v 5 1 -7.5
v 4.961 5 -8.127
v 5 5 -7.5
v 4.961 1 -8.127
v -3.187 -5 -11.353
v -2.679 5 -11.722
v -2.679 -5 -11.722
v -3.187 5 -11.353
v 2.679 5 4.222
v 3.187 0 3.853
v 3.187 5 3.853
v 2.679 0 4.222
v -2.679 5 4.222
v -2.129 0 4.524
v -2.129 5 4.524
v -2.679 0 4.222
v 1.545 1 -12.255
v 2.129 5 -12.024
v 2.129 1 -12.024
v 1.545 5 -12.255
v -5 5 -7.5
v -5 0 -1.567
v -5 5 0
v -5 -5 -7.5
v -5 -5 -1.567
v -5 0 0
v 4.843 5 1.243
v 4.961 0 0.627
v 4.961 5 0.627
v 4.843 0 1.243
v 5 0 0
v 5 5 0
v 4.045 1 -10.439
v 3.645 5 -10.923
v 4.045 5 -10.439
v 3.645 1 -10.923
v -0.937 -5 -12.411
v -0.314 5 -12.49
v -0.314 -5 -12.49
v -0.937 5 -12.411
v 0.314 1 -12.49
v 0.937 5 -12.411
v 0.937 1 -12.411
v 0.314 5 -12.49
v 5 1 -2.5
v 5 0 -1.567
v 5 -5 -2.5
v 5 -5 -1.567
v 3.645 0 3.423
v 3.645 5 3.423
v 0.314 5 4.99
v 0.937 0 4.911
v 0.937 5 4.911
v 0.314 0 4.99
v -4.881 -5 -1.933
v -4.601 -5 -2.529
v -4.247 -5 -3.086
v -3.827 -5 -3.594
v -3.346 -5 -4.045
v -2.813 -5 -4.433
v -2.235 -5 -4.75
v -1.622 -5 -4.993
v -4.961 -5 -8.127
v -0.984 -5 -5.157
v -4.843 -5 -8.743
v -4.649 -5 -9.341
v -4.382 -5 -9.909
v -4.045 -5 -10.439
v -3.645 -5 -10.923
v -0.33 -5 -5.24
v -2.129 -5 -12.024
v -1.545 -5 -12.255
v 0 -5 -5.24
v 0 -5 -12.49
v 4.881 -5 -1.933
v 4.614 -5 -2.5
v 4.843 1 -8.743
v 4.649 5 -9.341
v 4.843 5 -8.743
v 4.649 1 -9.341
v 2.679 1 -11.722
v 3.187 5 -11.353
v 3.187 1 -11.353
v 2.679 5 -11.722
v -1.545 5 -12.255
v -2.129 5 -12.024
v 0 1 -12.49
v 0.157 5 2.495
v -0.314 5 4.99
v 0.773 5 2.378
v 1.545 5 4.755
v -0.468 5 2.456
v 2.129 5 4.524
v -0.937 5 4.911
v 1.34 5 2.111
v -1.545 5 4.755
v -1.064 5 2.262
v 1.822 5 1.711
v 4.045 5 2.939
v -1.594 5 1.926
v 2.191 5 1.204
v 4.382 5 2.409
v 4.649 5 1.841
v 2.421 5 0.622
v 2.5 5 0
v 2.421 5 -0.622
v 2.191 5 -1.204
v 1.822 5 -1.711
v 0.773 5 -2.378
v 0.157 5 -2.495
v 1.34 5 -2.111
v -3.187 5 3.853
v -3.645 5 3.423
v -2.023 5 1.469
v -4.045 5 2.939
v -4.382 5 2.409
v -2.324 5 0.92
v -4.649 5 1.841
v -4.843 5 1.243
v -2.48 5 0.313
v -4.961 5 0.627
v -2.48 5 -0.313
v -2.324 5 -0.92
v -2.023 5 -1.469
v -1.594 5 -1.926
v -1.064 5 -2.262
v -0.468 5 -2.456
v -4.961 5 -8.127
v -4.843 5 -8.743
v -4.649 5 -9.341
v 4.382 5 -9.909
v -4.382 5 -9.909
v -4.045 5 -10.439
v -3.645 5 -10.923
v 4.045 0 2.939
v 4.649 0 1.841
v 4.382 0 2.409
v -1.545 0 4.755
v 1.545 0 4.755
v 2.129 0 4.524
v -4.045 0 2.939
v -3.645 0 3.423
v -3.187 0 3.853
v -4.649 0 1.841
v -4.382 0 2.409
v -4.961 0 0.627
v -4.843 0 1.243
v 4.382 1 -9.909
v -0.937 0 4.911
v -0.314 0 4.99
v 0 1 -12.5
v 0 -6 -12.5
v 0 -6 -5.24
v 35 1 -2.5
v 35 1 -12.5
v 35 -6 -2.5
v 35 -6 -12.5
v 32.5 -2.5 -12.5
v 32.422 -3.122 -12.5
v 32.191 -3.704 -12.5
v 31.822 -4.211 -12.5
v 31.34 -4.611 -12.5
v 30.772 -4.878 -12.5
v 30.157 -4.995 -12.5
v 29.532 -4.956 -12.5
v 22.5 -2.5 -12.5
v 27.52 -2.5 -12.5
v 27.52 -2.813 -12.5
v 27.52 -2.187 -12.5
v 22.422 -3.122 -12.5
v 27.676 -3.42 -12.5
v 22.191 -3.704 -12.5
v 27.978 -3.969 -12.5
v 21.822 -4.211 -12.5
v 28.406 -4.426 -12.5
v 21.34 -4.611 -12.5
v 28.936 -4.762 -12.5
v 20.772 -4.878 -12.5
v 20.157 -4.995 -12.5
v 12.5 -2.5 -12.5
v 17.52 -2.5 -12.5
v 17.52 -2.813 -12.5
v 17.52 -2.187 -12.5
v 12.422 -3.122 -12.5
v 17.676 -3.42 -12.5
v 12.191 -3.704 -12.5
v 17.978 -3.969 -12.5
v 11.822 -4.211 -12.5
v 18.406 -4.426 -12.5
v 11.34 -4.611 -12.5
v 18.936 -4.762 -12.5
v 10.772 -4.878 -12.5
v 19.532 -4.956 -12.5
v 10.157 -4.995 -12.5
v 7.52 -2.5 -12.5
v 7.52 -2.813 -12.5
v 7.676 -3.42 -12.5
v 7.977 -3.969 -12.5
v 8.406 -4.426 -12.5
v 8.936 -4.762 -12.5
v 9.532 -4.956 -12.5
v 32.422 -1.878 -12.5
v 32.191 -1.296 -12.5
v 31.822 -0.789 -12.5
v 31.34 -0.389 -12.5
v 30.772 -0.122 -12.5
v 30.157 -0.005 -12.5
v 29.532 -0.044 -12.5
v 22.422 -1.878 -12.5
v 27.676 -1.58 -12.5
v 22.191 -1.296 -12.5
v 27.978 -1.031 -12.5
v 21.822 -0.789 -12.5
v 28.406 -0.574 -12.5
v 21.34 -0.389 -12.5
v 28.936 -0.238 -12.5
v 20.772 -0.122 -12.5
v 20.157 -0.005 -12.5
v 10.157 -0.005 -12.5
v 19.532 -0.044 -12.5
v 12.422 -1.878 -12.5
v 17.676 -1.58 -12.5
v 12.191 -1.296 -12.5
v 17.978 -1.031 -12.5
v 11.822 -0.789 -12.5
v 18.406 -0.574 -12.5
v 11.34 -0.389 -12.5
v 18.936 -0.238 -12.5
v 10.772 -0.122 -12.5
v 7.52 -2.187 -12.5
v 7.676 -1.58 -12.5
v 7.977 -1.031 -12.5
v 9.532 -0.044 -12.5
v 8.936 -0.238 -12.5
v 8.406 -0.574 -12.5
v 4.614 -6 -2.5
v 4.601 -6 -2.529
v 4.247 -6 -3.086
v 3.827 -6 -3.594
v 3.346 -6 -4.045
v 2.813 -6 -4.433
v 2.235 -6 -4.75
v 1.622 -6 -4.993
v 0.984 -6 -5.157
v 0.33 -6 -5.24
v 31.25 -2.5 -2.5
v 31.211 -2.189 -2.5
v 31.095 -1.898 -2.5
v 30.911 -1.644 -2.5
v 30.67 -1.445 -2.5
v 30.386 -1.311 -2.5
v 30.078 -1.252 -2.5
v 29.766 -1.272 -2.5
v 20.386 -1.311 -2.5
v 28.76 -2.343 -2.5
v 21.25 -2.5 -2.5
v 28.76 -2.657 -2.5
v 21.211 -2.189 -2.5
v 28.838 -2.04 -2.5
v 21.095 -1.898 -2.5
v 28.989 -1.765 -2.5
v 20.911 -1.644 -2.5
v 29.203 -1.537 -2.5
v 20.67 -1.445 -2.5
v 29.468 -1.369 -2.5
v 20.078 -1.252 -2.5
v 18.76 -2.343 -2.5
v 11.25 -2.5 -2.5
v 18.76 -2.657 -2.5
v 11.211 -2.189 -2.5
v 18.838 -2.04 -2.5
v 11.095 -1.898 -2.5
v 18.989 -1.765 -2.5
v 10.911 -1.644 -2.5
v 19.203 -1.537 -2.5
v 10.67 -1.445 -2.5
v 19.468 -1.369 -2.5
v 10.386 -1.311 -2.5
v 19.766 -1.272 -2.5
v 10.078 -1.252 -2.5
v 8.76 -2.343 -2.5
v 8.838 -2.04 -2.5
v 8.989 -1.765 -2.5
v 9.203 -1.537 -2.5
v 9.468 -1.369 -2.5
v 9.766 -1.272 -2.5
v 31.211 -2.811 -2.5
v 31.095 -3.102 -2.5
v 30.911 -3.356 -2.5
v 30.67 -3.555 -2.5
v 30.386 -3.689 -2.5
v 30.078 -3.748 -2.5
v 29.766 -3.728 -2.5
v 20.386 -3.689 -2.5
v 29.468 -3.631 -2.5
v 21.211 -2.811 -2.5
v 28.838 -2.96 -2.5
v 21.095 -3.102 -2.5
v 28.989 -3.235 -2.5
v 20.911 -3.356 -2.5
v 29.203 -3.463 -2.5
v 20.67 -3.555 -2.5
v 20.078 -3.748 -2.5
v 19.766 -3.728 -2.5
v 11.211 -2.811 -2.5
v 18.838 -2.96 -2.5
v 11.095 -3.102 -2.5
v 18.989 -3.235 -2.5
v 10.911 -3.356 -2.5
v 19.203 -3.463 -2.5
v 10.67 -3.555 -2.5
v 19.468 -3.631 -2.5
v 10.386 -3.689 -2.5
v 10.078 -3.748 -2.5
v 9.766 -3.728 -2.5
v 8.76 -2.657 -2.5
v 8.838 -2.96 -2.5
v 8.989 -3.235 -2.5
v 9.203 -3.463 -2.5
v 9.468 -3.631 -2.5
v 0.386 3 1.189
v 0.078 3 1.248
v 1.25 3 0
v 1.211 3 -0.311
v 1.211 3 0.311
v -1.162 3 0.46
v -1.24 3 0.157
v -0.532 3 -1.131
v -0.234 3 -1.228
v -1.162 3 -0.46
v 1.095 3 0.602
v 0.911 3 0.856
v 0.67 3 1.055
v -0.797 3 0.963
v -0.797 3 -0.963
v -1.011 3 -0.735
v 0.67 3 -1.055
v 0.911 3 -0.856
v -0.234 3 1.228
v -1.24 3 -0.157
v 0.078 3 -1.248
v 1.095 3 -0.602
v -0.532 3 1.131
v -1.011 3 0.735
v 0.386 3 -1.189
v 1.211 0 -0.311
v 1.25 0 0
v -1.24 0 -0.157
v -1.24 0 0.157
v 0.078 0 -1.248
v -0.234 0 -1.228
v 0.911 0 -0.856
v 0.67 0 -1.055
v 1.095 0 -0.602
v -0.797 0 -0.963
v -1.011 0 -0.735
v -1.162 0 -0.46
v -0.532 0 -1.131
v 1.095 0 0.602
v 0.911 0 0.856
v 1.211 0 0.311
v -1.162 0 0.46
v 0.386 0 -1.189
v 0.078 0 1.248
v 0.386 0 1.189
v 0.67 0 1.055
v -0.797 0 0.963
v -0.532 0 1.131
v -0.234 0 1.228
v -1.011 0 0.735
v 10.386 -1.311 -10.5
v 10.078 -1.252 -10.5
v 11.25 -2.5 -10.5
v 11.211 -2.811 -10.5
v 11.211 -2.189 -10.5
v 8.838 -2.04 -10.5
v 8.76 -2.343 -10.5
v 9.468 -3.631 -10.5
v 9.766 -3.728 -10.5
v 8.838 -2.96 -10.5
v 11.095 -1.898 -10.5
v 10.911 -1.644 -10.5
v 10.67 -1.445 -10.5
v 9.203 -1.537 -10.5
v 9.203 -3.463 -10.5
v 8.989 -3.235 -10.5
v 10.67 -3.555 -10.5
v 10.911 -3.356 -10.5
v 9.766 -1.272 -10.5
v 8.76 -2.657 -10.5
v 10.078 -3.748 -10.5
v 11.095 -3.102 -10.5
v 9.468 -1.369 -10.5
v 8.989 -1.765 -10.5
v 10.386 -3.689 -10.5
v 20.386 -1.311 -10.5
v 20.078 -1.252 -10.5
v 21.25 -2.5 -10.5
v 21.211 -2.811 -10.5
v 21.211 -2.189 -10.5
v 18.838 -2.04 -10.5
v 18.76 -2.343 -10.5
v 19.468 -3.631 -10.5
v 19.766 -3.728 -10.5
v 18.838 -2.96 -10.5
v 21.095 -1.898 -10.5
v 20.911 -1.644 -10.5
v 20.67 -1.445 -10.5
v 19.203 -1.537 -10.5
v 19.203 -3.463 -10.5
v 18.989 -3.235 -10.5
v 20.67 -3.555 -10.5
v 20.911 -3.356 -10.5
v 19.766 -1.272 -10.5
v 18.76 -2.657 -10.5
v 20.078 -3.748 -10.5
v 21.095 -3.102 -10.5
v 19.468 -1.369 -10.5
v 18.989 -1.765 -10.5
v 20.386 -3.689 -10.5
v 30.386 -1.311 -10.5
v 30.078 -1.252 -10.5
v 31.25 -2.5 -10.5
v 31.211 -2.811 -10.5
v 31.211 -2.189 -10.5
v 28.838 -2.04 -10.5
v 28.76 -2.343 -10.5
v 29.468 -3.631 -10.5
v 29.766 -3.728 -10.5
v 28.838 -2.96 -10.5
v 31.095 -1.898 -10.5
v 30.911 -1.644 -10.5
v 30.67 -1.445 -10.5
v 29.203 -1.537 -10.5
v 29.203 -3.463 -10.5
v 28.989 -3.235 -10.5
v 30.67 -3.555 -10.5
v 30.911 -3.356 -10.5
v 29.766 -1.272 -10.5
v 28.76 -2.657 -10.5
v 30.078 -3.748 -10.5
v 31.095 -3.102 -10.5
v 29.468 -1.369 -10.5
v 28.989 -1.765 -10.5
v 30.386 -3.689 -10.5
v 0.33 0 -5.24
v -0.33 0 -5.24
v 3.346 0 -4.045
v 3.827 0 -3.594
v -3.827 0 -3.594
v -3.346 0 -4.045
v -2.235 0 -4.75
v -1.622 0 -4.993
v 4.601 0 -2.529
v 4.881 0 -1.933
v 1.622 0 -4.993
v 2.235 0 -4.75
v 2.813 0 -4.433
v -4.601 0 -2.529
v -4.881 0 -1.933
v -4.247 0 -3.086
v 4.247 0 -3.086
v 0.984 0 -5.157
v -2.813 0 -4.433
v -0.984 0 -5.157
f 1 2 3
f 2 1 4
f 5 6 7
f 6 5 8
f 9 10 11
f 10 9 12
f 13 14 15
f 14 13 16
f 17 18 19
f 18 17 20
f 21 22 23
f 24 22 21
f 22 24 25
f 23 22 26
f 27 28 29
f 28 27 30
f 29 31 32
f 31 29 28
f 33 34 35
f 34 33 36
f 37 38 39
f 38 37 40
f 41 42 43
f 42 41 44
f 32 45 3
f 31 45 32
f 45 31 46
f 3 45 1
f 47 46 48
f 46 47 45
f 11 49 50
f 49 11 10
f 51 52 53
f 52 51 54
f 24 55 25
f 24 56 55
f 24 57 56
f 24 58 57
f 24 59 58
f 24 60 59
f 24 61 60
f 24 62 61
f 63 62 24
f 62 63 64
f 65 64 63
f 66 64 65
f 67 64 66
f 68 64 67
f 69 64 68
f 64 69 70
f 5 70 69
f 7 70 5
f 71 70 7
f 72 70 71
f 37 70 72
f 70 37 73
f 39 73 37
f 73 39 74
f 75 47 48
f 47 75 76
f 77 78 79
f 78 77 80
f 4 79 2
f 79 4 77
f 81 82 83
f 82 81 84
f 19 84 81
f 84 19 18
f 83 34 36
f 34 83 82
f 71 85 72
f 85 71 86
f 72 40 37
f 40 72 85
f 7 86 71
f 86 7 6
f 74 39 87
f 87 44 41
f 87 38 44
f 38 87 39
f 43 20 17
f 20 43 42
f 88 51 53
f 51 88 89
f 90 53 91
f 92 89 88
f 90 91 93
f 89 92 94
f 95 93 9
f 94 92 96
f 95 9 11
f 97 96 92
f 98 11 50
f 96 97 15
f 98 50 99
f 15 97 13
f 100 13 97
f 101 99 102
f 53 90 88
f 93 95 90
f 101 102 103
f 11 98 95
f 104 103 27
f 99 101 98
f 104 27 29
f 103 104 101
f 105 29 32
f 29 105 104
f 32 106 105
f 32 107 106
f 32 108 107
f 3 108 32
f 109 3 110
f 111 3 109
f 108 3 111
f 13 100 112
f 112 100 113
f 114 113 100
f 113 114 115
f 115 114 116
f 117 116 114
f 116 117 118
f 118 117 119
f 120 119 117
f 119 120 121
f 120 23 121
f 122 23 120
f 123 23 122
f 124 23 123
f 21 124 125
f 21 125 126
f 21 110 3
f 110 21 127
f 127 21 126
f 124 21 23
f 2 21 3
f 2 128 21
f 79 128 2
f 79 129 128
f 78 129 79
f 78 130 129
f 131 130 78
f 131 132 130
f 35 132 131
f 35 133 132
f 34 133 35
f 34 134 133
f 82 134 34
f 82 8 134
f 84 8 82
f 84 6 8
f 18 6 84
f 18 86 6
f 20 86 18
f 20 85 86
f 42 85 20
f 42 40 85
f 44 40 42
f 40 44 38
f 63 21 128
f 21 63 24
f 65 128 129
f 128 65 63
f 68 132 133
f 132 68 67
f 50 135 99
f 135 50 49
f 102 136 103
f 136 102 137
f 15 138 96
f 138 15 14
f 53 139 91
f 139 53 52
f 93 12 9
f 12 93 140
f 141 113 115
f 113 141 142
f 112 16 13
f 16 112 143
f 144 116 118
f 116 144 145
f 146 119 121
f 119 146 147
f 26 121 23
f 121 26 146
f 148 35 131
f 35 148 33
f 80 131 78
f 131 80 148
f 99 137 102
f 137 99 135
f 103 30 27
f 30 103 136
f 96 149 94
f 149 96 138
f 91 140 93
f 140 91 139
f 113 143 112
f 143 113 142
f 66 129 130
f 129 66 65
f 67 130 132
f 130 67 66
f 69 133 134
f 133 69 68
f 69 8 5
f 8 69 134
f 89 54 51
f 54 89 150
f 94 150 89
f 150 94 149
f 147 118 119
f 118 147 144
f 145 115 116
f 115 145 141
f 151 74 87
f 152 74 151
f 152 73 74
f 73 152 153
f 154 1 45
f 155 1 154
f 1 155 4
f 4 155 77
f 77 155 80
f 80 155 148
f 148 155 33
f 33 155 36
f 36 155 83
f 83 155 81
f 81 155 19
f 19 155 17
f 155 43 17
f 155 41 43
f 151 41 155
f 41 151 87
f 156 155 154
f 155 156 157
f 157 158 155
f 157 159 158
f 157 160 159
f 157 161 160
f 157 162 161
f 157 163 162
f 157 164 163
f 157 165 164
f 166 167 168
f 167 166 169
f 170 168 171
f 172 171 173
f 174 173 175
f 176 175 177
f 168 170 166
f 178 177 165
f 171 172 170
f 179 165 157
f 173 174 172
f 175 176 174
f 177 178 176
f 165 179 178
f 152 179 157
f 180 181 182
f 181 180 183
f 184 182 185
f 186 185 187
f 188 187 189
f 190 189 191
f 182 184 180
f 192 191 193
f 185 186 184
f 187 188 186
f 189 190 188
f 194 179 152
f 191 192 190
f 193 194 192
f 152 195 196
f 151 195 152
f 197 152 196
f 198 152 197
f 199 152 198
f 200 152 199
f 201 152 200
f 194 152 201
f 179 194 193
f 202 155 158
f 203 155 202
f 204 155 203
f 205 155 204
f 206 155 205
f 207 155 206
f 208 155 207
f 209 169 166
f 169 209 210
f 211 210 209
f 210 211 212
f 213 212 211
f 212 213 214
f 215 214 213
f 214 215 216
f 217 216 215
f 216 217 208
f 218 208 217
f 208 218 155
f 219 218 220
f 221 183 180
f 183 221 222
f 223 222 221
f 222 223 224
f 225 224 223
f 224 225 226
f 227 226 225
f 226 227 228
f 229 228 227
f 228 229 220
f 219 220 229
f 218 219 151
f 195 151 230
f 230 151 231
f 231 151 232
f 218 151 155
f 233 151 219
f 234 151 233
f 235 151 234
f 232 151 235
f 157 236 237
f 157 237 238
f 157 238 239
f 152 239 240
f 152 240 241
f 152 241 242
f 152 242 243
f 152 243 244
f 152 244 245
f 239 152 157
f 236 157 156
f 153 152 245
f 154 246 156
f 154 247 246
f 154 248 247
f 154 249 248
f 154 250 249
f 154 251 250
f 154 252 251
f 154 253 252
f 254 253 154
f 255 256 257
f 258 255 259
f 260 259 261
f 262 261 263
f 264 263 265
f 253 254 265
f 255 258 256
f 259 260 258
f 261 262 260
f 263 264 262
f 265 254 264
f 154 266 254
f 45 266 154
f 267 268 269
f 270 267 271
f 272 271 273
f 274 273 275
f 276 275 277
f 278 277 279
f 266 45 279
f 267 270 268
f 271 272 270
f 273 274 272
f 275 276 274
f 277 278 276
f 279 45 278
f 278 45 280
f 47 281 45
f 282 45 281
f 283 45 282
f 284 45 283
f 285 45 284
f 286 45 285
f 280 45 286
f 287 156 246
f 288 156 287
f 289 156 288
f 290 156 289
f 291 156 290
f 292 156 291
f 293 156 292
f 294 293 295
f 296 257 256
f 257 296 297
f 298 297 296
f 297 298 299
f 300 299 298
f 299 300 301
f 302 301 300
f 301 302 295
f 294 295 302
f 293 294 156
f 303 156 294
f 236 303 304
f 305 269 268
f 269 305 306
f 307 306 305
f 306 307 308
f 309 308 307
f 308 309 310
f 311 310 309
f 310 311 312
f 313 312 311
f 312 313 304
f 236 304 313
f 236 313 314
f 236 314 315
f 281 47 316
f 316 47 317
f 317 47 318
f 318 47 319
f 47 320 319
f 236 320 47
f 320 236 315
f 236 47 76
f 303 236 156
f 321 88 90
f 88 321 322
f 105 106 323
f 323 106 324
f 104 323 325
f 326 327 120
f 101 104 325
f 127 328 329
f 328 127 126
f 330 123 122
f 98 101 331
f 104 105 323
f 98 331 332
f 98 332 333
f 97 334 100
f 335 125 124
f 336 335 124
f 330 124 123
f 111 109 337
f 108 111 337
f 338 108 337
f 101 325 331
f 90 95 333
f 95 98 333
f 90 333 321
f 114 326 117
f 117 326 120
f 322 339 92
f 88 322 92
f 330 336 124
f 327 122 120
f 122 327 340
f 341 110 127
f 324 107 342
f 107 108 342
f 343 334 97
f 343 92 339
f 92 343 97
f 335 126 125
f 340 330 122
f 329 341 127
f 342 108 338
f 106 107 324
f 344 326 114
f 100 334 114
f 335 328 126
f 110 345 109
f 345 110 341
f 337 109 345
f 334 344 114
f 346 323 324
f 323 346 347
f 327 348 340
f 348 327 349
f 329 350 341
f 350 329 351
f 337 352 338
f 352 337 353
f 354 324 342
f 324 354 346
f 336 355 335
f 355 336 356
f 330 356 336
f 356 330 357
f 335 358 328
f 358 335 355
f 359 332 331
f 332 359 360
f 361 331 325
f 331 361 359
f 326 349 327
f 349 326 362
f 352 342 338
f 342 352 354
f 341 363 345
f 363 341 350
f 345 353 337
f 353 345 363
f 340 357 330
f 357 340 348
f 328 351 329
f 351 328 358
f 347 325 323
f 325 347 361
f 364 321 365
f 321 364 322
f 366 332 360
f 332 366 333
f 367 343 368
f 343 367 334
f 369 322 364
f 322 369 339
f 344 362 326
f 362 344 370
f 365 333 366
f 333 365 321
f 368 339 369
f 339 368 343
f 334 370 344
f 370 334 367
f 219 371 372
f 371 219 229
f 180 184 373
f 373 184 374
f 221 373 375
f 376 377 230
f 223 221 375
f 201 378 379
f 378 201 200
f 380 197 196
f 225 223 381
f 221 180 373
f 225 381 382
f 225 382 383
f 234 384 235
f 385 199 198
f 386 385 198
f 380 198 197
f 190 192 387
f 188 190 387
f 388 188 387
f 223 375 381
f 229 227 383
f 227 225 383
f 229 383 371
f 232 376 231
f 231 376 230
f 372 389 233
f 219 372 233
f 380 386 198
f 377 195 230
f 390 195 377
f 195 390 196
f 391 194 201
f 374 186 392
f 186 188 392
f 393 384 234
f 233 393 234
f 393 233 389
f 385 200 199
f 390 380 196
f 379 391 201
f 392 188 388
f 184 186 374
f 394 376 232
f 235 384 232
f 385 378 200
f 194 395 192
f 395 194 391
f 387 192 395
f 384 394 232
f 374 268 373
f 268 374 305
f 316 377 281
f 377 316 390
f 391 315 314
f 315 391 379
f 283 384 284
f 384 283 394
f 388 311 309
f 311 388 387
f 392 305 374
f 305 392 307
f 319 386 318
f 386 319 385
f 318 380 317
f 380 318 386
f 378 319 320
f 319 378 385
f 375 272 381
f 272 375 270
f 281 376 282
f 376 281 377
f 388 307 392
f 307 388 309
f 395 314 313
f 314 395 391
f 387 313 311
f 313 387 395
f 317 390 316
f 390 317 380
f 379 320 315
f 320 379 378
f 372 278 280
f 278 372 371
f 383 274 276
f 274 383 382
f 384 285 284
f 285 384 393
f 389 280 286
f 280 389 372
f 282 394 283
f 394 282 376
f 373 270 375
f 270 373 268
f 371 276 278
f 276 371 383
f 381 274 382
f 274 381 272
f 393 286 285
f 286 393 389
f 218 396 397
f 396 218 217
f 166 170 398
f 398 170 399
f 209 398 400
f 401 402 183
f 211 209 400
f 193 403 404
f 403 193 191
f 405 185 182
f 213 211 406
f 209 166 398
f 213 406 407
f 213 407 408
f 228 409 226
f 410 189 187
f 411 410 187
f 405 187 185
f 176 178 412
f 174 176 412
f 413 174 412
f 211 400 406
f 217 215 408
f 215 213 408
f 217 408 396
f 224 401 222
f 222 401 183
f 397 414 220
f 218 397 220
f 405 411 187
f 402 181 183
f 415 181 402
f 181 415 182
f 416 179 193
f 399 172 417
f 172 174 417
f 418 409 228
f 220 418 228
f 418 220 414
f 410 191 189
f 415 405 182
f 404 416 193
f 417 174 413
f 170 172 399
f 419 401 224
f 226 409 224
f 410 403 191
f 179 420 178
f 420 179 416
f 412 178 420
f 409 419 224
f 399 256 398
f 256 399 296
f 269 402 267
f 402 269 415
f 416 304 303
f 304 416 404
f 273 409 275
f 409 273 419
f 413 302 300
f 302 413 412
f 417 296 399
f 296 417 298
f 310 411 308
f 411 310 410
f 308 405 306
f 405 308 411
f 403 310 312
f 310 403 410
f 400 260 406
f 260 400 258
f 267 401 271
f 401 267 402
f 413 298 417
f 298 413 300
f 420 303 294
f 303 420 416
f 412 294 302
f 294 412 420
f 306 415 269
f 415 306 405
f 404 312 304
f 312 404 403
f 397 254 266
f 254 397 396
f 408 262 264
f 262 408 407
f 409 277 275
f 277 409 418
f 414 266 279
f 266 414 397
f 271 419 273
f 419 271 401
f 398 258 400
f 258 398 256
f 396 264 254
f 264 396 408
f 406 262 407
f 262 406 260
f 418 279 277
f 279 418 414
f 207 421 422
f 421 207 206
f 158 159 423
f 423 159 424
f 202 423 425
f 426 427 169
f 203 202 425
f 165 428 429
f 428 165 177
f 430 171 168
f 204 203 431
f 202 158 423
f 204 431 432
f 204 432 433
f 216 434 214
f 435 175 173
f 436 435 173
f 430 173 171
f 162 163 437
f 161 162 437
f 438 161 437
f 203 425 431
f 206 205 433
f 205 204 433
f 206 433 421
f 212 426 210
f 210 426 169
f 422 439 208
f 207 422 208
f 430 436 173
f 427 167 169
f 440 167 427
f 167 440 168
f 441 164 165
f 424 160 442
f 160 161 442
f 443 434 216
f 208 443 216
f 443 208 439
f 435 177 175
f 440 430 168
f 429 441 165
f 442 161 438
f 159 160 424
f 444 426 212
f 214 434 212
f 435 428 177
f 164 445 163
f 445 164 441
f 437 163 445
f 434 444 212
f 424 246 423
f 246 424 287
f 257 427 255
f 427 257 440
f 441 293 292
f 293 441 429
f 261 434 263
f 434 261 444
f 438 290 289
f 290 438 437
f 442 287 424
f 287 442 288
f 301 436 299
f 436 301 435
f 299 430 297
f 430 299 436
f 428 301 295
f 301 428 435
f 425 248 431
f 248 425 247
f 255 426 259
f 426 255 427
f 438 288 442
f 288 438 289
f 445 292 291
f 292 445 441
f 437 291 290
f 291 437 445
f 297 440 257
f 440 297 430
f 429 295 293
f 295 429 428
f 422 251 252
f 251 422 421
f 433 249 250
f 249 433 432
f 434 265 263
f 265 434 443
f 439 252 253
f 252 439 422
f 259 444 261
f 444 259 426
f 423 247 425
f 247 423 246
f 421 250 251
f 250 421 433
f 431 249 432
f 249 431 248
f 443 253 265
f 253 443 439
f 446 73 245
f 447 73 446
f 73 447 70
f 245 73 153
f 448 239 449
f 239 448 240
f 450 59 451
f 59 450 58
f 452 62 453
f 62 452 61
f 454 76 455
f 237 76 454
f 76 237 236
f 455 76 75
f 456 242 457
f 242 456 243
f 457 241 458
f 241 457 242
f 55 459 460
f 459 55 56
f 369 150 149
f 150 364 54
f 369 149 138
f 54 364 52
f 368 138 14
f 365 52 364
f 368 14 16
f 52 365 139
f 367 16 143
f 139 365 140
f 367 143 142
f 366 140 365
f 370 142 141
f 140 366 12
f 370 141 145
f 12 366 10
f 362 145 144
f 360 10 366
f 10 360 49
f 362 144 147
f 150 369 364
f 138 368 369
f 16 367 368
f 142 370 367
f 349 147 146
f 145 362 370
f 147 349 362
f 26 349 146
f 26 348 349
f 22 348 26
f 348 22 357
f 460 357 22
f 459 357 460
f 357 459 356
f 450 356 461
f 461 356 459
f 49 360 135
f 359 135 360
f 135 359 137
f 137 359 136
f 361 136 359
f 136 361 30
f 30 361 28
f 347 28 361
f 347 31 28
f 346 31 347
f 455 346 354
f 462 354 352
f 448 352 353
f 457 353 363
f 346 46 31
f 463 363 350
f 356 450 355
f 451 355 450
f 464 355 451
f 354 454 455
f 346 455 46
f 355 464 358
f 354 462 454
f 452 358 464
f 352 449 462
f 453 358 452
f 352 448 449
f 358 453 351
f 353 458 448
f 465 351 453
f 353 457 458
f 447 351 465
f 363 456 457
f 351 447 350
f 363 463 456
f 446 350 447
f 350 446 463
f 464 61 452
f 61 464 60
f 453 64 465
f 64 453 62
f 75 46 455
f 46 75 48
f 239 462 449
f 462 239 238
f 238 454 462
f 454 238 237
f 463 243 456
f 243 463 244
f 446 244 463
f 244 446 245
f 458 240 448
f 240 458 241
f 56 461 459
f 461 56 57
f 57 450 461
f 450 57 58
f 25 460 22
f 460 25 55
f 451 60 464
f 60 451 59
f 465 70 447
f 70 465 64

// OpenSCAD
// file: openscad-extra/src/countersink.scad
/*
Countersink depression for tapered screw heads.
*/

module make_countersink(d1=0, d2=0, h=0, outer=10, inner=0, $fn=25){
    /*
    d1 = shaft diameter
    d2 = head diameter
    h = height of taper
    outer = height of head mass
    inner = height of shaft mass, including taper
    */
    default_taper_height = 2;
    d1 = d1 ? d1 : 2.5;
    d2 = d2 ? d2 : 5;
    h = h ? h : default_taper_height;
    inner = (inner ? inner : 10) - default_taper_height;
    
    translate([0, 0, -default_taper_height/2])
    union(){
        
        // taper
        cylinder(d1=d1, d2=d2, h=h, center=true, $fn=$fn);
    
        // big top
    	translate([0, 0, h/2])
    	cylinder(d=d2, h=outer, center=false, $fn=$fn);
        
    	// lower bottom
    	translate([0, 0, -h/2-inner])
    	cylinder(d=d1, h=inner, center=false, $fn=$fn);
	}
}

make_countersink(inner=10);

color("blue")
translate([0,2,0])
cylinder(d=2.5, h=20, center=true, $fn=100);
// main file
use <openscad-extra/src/countersink.scad>;

module leg_spring_hinge_extender(){
    bar_length = 35;
    bar_height = 5+5;
    
    difference(){
        union(){
            // main mass
            hull()
            for(i=[0:1])
            translate([0,(5/2 + (bar_height)/2)*i,0])
            cylinder(d=10, h=10, center=true, $fn=50);
            
            // mount bar
            translate([bar_length/2, bar_height - (bar_height-5)/2, -5/2])
            cube([bar_length, bar_height, 5+2], center=true);
        }
        
        // axle hole
        translate([0,0,2.5+5/2])
        make_countersink();
    
        // hub cutout
        color("red")
        translate([0,0,-5])
        cylinder(d=10.5, h=10, center=true, $fn=50);

        // mount holes
        color("red")
        for(i=[0:2])
        translate([10*i+10,7.5 + (bar_height)/2,-5/2])
        rotate([-90,0,0])
        make_countersink(inner=30);
    
    }
}

rotate([-90,0,0])
leg_spring_hinge_extender();
